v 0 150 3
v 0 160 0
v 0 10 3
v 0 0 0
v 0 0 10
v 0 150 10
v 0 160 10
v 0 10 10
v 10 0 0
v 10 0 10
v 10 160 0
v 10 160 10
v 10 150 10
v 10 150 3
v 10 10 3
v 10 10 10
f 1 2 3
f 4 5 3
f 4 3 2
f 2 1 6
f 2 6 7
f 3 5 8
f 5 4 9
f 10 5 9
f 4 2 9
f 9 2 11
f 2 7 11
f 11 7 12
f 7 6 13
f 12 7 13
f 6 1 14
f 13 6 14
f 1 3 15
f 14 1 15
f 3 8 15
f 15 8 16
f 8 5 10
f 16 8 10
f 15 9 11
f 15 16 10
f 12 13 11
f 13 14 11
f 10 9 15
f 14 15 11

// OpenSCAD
cube([10,150,3]);
cube([10,10,10]);
translate([0,150,0])cube([10,10,10]);
